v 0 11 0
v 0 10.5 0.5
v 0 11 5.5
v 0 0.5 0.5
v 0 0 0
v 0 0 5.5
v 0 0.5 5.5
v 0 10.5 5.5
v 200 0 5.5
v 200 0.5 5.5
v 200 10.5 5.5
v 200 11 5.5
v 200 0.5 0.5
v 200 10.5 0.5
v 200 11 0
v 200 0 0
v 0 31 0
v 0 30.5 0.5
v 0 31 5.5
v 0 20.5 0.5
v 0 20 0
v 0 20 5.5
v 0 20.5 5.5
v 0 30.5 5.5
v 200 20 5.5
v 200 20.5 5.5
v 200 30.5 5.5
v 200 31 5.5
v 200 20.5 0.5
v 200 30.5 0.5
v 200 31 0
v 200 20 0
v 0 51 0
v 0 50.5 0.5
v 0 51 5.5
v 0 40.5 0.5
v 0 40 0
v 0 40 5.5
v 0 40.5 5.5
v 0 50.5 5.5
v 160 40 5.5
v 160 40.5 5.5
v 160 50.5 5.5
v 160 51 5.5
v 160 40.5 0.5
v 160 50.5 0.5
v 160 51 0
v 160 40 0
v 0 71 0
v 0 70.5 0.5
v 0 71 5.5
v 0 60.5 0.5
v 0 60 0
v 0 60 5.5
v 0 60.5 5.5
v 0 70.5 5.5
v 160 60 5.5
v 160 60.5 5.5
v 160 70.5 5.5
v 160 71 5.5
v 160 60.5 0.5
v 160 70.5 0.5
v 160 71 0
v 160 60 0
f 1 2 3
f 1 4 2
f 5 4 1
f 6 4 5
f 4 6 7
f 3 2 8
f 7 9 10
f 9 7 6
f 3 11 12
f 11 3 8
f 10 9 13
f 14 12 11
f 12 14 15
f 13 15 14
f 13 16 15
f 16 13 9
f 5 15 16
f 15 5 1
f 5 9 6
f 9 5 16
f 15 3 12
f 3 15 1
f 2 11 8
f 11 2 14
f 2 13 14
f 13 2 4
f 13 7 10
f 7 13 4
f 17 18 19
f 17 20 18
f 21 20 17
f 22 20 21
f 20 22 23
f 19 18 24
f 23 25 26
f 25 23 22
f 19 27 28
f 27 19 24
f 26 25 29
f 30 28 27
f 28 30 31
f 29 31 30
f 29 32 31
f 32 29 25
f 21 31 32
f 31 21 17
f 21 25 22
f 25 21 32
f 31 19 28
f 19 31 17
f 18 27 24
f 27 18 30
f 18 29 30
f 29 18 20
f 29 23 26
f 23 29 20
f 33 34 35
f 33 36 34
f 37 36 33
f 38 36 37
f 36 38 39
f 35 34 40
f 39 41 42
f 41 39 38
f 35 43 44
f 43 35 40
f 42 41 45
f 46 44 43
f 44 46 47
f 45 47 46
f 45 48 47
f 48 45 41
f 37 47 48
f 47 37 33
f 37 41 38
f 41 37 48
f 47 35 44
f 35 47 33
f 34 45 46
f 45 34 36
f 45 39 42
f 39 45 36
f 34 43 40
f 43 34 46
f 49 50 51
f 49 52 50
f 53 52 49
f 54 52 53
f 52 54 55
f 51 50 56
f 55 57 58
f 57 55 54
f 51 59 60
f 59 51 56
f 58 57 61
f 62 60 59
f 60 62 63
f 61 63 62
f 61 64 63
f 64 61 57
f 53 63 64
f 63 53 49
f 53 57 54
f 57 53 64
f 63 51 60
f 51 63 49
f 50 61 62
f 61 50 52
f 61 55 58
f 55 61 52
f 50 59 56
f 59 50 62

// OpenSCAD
module u_profile (length, cross, thick) {
  difference () {
    cube([length, cross.x + 2 * thick, cross.y + thick]);
    
    translate([-1, thick, thick])
    cube([length + 2, cross.x, cross.y + 1]);
  }
}

u_profile(200, [10, 5], 0.5);

translate([0, 20, 0])
u_profile(200, [10, 5], 0.5);

translate([0, 40, 0])
u_profile(160, [10, 5], 0.5);

translate([0, 60, 0])
u_profile(160, [10, 5], 0.5);
